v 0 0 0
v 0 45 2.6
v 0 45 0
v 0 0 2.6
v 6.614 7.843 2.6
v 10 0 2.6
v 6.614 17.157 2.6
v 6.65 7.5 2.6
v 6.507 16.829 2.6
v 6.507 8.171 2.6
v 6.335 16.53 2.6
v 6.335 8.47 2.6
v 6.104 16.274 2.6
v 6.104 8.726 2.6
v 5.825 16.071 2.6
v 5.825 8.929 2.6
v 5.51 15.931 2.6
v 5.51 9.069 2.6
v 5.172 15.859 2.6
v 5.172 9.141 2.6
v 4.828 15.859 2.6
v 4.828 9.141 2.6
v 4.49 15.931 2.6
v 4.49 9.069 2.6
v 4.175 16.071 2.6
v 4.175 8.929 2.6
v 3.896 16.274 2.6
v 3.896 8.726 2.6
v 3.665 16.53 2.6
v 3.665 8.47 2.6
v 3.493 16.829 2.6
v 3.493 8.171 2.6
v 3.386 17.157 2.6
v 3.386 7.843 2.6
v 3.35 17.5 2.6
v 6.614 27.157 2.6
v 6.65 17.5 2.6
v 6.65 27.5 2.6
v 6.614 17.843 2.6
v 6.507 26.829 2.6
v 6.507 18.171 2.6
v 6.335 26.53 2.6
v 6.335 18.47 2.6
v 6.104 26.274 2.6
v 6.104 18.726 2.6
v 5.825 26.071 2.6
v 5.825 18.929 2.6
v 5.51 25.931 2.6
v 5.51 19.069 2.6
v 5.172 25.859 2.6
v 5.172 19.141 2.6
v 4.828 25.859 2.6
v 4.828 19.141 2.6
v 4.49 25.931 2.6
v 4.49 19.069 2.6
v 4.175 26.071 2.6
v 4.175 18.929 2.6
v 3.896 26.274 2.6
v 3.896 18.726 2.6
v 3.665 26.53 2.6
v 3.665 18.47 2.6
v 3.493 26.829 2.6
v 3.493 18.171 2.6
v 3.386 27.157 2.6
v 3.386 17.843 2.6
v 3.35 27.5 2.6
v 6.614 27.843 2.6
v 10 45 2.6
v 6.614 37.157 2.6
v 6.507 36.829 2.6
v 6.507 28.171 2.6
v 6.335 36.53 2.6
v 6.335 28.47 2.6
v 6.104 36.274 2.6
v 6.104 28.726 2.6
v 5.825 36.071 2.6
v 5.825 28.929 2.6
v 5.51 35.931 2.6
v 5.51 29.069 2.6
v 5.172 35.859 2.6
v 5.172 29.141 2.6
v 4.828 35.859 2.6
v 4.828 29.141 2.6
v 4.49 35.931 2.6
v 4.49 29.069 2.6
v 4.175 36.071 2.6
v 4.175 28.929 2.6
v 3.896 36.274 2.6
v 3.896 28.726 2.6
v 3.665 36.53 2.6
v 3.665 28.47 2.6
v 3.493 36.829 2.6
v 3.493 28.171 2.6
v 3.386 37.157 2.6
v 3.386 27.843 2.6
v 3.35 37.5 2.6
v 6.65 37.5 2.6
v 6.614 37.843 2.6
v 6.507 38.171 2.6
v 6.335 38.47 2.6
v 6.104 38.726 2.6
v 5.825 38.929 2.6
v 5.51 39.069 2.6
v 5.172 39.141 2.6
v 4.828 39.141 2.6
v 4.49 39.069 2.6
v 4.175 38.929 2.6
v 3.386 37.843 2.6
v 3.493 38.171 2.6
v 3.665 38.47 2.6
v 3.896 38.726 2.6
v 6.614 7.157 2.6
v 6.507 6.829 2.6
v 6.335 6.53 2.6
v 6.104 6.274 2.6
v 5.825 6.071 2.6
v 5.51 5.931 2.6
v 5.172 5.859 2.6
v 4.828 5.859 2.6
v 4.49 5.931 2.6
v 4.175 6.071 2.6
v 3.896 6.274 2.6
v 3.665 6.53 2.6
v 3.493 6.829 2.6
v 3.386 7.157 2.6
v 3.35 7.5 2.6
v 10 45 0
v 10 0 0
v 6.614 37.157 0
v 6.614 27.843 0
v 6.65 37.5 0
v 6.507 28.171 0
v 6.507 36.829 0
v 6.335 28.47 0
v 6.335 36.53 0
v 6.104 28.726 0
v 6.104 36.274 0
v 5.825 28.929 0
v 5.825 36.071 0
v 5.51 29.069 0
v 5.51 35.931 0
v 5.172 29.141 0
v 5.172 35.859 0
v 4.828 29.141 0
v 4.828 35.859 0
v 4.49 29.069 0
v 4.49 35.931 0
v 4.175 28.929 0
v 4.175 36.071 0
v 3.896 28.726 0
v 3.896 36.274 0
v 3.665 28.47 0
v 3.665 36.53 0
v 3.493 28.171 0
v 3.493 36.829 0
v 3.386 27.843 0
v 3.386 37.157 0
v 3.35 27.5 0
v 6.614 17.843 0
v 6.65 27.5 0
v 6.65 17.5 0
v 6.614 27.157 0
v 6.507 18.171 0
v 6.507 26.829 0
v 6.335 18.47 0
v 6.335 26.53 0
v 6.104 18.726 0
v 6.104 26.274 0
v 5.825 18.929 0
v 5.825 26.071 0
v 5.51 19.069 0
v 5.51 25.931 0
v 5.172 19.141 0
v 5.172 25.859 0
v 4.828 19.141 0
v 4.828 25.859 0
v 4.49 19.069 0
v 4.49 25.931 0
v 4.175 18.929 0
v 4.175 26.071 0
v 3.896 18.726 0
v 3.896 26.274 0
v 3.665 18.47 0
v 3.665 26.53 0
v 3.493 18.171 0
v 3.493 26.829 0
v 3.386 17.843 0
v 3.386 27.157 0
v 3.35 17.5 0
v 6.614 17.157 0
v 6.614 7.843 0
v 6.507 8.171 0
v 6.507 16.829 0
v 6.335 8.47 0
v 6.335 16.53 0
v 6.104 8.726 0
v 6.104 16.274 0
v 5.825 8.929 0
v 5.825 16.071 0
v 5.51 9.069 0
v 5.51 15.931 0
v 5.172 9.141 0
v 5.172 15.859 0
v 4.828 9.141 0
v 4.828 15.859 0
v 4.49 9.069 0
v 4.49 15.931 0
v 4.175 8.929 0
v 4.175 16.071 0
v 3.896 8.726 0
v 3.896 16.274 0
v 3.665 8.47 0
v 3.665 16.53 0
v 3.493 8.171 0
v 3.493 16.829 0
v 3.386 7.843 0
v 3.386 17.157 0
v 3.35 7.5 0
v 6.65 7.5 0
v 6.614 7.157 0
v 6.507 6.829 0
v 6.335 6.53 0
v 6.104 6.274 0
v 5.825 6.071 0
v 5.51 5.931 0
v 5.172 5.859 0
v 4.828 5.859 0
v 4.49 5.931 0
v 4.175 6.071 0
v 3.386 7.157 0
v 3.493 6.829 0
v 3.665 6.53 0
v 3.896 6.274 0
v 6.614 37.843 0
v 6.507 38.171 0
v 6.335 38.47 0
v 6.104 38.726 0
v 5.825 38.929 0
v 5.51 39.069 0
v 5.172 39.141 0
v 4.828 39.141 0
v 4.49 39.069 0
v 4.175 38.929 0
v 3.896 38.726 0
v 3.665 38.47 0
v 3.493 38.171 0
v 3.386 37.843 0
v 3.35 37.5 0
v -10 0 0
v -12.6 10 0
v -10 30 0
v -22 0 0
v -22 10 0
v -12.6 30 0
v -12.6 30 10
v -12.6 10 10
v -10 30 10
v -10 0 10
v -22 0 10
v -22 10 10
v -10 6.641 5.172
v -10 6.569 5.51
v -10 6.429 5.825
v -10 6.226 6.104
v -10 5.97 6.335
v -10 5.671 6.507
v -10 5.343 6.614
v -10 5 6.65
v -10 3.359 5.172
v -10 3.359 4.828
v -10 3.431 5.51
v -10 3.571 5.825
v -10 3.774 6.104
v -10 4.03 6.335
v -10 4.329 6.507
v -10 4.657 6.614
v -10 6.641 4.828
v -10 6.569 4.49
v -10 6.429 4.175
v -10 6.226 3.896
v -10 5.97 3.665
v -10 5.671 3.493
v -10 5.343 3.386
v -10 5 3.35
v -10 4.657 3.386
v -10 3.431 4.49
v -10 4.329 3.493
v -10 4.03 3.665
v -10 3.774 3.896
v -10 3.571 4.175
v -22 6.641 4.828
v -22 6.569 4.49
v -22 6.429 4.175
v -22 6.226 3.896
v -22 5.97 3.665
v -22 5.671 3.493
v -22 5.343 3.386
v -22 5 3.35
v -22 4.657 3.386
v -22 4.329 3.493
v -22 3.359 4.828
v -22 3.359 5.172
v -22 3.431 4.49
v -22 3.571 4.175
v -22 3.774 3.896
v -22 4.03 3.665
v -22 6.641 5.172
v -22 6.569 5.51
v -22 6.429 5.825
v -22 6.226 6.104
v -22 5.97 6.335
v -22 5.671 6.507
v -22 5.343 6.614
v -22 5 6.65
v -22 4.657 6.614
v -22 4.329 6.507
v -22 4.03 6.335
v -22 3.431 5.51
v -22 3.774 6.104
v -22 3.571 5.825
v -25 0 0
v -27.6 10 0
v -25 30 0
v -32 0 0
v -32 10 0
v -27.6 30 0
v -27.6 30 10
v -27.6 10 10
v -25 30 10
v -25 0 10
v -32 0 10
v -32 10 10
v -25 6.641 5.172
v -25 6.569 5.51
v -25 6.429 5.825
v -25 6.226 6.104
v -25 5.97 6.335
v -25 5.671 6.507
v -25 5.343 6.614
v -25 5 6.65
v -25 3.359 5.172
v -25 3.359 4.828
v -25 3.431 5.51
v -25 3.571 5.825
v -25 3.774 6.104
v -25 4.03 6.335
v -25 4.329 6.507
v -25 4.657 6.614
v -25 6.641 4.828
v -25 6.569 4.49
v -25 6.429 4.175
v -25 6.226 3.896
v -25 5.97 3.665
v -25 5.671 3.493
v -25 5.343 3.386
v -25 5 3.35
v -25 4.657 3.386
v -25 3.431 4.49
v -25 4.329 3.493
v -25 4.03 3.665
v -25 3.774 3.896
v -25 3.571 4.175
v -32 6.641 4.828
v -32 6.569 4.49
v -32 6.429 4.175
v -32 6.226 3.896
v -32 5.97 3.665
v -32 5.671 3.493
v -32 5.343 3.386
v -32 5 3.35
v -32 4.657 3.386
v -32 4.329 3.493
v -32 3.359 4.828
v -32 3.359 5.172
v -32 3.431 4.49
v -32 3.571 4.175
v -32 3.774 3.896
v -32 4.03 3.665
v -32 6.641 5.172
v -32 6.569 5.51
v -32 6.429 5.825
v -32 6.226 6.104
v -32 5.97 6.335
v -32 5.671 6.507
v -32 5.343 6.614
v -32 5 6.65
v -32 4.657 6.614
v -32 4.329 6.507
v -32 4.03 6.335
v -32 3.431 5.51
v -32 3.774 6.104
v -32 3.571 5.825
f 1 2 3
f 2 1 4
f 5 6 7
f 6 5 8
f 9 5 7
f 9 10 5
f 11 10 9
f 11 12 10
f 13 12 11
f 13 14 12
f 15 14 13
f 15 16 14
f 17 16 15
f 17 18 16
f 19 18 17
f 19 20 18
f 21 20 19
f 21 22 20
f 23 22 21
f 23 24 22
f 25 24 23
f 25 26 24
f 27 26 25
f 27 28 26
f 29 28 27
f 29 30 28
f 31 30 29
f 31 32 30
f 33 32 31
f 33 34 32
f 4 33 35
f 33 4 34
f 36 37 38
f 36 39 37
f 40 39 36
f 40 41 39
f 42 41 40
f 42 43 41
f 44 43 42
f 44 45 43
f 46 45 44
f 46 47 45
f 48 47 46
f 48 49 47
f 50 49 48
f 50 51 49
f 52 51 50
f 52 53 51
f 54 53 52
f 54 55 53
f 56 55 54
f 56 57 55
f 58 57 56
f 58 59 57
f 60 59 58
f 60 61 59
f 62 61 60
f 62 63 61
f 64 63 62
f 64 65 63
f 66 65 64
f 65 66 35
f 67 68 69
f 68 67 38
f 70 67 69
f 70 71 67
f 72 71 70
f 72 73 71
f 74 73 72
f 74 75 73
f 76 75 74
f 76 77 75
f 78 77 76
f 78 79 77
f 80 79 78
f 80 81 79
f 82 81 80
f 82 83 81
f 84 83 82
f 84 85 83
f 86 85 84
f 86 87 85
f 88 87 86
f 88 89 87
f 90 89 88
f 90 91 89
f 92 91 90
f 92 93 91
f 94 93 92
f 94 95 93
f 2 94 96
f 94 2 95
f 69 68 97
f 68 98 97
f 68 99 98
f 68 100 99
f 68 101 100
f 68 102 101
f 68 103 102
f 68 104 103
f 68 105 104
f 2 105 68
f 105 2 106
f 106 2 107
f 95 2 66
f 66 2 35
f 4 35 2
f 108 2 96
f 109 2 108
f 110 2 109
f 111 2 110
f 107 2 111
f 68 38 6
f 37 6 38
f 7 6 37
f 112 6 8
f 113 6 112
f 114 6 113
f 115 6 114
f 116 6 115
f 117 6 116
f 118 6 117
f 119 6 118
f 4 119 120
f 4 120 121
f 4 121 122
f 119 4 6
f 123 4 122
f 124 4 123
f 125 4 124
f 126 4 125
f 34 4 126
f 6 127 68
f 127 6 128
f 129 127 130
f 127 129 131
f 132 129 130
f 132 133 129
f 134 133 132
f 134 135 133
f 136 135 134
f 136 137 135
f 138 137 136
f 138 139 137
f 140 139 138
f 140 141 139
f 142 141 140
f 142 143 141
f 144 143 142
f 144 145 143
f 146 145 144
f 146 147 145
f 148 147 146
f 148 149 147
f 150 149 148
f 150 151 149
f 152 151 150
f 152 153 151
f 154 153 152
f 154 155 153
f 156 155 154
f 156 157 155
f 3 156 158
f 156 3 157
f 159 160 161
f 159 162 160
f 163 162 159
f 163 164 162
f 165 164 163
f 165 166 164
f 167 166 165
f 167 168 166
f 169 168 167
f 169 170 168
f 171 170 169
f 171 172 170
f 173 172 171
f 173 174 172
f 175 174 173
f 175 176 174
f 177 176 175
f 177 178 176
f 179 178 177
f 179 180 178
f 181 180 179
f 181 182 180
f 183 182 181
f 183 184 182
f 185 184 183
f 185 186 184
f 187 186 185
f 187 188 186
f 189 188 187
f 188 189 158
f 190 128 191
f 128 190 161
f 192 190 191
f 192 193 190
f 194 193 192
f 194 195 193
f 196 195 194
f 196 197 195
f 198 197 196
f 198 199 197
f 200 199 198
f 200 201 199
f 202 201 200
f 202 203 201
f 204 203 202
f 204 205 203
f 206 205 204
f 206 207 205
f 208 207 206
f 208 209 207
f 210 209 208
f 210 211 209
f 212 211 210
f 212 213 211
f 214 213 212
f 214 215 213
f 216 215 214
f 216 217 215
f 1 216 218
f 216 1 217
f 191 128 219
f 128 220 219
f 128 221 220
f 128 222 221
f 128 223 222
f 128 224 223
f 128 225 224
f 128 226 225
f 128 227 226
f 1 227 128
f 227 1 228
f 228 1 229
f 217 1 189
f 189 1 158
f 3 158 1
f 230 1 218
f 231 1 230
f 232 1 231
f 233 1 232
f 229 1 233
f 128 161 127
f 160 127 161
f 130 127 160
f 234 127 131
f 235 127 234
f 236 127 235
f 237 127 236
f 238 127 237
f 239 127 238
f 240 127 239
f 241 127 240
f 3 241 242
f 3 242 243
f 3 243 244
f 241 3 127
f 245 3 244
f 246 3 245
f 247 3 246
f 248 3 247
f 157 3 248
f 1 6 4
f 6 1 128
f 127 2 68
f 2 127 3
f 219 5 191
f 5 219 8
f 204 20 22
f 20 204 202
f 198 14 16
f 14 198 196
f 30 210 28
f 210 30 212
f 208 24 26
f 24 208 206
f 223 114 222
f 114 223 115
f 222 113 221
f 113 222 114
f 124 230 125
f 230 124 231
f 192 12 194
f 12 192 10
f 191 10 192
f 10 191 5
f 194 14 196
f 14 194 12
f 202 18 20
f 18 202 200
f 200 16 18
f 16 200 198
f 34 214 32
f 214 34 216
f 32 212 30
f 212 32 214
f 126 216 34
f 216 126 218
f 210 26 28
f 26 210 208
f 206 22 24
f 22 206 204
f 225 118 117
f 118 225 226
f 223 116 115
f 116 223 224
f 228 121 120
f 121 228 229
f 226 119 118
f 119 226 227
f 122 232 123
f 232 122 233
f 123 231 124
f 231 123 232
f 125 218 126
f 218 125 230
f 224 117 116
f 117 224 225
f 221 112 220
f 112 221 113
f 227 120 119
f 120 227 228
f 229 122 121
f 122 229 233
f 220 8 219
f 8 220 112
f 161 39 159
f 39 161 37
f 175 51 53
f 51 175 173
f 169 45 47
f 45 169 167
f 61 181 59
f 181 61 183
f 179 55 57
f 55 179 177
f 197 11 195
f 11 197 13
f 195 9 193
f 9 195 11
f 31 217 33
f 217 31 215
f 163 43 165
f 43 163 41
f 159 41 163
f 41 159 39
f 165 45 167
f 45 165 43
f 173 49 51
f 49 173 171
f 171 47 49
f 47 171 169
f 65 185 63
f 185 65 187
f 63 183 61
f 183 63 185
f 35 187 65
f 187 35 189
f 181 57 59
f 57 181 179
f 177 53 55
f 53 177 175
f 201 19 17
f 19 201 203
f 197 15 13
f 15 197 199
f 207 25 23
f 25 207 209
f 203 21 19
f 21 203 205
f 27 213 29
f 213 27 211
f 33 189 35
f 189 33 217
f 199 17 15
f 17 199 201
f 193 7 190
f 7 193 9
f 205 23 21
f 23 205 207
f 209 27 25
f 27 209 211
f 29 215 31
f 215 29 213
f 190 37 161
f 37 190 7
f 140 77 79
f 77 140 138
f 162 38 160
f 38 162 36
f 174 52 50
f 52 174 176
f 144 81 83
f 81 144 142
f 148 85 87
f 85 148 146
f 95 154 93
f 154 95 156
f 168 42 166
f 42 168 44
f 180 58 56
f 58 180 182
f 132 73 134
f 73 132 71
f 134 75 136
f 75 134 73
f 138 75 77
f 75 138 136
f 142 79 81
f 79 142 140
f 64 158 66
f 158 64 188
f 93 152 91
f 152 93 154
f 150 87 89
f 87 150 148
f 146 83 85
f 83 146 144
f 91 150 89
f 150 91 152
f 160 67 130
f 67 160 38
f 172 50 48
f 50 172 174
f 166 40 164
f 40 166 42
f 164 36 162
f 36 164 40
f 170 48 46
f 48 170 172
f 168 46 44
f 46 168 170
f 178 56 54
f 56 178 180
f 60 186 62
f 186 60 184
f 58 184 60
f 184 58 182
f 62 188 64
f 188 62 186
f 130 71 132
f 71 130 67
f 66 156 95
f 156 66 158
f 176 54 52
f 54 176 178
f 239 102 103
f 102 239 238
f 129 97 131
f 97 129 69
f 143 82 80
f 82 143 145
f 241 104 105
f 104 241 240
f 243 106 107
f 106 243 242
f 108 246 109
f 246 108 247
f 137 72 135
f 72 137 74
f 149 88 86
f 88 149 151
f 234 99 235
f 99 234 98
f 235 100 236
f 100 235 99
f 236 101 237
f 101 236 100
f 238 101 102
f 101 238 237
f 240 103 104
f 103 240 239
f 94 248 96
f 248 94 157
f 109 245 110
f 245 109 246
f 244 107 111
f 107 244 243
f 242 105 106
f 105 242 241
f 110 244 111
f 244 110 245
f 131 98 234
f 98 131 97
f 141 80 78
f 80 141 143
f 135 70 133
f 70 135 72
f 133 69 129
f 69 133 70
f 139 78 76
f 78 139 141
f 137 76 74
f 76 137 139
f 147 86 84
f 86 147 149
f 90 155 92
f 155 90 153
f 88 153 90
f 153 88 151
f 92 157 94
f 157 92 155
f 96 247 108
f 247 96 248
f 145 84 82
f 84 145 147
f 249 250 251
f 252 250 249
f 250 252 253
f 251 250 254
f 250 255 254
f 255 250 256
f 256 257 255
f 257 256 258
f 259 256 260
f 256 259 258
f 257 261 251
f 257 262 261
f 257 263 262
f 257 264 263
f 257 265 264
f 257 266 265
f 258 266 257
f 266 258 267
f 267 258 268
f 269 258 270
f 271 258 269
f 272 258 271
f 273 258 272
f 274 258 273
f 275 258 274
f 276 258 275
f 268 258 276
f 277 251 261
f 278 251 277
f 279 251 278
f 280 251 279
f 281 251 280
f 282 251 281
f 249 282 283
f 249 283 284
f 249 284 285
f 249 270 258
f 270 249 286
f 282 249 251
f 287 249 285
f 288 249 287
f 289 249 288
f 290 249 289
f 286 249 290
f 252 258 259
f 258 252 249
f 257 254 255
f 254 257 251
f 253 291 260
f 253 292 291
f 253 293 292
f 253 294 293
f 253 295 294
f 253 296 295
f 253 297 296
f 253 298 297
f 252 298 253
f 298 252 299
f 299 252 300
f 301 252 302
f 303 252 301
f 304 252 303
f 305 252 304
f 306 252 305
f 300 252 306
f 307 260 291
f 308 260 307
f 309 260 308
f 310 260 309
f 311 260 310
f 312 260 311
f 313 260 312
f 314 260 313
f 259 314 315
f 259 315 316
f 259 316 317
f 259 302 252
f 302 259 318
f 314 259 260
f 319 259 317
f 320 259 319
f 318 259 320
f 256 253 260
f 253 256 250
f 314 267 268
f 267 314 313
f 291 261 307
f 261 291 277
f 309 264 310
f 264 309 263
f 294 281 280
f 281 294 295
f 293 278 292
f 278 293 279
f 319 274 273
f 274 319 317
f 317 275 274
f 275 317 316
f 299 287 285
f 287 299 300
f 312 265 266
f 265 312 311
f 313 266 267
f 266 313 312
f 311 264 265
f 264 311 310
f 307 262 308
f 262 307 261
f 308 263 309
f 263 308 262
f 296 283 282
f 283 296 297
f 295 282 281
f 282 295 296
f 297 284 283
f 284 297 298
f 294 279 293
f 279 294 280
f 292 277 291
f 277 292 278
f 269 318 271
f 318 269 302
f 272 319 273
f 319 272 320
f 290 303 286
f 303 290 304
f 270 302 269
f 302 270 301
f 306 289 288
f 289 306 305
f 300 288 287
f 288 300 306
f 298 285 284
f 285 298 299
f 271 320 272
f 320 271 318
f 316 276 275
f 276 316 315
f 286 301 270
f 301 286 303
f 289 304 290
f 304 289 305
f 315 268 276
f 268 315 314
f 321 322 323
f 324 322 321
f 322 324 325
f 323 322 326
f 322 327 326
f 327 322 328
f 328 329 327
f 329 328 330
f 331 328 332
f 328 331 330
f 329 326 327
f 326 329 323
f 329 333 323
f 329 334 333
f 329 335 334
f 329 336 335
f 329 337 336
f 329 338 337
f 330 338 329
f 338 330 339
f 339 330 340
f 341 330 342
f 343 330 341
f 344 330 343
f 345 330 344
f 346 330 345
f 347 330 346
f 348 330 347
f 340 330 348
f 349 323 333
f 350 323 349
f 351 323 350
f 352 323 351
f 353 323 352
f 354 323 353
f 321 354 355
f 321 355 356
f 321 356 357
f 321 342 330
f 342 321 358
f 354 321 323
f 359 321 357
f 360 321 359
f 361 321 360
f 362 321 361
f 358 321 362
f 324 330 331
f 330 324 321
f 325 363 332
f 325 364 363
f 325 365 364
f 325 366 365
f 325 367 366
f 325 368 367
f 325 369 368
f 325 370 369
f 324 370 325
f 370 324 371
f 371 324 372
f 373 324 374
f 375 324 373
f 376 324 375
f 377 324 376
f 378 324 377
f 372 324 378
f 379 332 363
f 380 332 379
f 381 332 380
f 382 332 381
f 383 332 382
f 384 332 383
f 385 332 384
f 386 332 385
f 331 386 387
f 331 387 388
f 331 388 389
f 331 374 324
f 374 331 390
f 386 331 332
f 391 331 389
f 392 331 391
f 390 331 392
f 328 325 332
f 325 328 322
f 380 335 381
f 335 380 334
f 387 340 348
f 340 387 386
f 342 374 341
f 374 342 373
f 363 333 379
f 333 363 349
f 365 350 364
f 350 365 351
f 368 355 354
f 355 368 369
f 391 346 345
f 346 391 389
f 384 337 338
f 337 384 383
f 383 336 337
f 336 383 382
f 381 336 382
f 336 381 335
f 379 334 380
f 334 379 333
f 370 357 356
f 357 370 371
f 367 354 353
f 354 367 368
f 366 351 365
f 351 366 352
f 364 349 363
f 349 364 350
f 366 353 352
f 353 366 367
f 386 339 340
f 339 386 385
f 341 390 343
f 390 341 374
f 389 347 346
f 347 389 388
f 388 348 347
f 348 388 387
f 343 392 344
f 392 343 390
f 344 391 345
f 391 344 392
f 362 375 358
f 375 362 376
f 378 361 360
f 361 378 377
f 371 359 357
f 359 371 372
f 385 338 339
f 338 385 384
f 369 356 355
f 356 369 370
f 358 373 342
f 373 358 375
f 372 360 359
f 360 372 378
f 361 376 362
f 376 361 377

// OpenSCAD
// file: globals.scad
/*
Most things in this file is represented as one millimeter, so keep that in mind while changing things.
Some of the setting are not mm but at variables that you can set, such as 2*x=2x and you are setting what x is.
I will try to specify when things are variables and not exact measurements.
*/

// printer slop
slop = 0.15;

obj_leg = 30;
leg_length = 5.5;
small_number = 0.001;
metal_core_rode_global = 5;


///////////////// number of holes /////////////////////
z_hole_number = 8;
other_holes = 8;

///////////////// Pins /////////////////////

//pins that poke out
ball_size = 10;
pin_height = 20;
pin_diameter = 6;


//holes
hole_ball_size = ball_size;
hole_pin_height = pin_height;
hole_pin_diameter = pin_diameter;

///////////////// Z THINGS /////////////////////

berring_slot_width = 7.5;
berring_slot_depth = 6.5;
metal_core_rode = 5;

///////////////// X THINGS /////////////////////

//male dove tails
male_dove_max_width=8;
male_dove_min_width=5;
male_dove_depth=5;
male_dove_height=obj_leg/2;

function scaled_male_dove_max_width() = male_dove_max_width - slop;
function scaled_male_dove_min_width() = male_dove_min_width - slop;
function scaled_male_dove_depth() = male_dove_depth - slop;

//female dove tails, this is found on the y mounts
girl_max_width=11;
girl_min_width=5;
girl_depth=5;
girl_height=obj_leg;


///////////////// Y THINGS /////////////////////
/*
The Y is so normal that all of those global variables at the top should change all of the setting in it, this section is set her incase there are variables set in the future development of this project.
*/

// stepper
motor_side_length = 43.2;
motor_bolt_hole_distance = 31;
motor_center_hole = 23;
motor_shaft_dia = 5;
motor_shaft_hole_dia = 5+2*slop;

// bolts etc.
bolt_hole_dia = 3+2*slop;
bolt_head_hole_dia = 5.8;

m4_bolt_hole_dia = 4+2*slop;
m4_bolt_head_hole_dia = 6.8+2*slop;


m3_nut_side = 5.65;
m3_nut_height = 2.3;
m4_nut_side = 6.85;
m4_nut_height = 3.1;

// threaded rod
lifter_rod_diam = 9.86;
hole_threaded_rod = lifter_rod_diam+2*slop;

// for the extensions
metal_rod_size = 9;
// main file
include <globals.scad>;
include <include.scad>;

$fn=30;

difference() {
    cube([10,45,2.6]);
    translate([5, 7.5, -0.1]) cylinder(d=bolt_hole_dia, h=3);
    translate([5, 17.5, -0.1]) cylinder(d=bolt_hole_dia, h=3);
    translate([5, 27.5, -0.1]) cylinder(d=bolt_hole_dia, h=3);
    translate([5, 37.5, -0.1]) cylinder(d=bolt_hole_dia, h=3);
}

translate([-10,0,0]) rotate([0,-90,0]) difference() {
    union() {
        cube([10,30,2.6]);
        cube([10,10,12]);
    }
    translate([5, 5, -0.1]) cylinder(d=bolt_hole_dia, h=13);
}

translate([-25,0,0]) rotate([0,-90,0]) difference() {
    union() {
        cube([10,30,2.6]);
        cube([10,10,7]);
    }
    translate([5, 5, -0.1]) cylinder(d=bolt_hole_dia, h=13);
}
